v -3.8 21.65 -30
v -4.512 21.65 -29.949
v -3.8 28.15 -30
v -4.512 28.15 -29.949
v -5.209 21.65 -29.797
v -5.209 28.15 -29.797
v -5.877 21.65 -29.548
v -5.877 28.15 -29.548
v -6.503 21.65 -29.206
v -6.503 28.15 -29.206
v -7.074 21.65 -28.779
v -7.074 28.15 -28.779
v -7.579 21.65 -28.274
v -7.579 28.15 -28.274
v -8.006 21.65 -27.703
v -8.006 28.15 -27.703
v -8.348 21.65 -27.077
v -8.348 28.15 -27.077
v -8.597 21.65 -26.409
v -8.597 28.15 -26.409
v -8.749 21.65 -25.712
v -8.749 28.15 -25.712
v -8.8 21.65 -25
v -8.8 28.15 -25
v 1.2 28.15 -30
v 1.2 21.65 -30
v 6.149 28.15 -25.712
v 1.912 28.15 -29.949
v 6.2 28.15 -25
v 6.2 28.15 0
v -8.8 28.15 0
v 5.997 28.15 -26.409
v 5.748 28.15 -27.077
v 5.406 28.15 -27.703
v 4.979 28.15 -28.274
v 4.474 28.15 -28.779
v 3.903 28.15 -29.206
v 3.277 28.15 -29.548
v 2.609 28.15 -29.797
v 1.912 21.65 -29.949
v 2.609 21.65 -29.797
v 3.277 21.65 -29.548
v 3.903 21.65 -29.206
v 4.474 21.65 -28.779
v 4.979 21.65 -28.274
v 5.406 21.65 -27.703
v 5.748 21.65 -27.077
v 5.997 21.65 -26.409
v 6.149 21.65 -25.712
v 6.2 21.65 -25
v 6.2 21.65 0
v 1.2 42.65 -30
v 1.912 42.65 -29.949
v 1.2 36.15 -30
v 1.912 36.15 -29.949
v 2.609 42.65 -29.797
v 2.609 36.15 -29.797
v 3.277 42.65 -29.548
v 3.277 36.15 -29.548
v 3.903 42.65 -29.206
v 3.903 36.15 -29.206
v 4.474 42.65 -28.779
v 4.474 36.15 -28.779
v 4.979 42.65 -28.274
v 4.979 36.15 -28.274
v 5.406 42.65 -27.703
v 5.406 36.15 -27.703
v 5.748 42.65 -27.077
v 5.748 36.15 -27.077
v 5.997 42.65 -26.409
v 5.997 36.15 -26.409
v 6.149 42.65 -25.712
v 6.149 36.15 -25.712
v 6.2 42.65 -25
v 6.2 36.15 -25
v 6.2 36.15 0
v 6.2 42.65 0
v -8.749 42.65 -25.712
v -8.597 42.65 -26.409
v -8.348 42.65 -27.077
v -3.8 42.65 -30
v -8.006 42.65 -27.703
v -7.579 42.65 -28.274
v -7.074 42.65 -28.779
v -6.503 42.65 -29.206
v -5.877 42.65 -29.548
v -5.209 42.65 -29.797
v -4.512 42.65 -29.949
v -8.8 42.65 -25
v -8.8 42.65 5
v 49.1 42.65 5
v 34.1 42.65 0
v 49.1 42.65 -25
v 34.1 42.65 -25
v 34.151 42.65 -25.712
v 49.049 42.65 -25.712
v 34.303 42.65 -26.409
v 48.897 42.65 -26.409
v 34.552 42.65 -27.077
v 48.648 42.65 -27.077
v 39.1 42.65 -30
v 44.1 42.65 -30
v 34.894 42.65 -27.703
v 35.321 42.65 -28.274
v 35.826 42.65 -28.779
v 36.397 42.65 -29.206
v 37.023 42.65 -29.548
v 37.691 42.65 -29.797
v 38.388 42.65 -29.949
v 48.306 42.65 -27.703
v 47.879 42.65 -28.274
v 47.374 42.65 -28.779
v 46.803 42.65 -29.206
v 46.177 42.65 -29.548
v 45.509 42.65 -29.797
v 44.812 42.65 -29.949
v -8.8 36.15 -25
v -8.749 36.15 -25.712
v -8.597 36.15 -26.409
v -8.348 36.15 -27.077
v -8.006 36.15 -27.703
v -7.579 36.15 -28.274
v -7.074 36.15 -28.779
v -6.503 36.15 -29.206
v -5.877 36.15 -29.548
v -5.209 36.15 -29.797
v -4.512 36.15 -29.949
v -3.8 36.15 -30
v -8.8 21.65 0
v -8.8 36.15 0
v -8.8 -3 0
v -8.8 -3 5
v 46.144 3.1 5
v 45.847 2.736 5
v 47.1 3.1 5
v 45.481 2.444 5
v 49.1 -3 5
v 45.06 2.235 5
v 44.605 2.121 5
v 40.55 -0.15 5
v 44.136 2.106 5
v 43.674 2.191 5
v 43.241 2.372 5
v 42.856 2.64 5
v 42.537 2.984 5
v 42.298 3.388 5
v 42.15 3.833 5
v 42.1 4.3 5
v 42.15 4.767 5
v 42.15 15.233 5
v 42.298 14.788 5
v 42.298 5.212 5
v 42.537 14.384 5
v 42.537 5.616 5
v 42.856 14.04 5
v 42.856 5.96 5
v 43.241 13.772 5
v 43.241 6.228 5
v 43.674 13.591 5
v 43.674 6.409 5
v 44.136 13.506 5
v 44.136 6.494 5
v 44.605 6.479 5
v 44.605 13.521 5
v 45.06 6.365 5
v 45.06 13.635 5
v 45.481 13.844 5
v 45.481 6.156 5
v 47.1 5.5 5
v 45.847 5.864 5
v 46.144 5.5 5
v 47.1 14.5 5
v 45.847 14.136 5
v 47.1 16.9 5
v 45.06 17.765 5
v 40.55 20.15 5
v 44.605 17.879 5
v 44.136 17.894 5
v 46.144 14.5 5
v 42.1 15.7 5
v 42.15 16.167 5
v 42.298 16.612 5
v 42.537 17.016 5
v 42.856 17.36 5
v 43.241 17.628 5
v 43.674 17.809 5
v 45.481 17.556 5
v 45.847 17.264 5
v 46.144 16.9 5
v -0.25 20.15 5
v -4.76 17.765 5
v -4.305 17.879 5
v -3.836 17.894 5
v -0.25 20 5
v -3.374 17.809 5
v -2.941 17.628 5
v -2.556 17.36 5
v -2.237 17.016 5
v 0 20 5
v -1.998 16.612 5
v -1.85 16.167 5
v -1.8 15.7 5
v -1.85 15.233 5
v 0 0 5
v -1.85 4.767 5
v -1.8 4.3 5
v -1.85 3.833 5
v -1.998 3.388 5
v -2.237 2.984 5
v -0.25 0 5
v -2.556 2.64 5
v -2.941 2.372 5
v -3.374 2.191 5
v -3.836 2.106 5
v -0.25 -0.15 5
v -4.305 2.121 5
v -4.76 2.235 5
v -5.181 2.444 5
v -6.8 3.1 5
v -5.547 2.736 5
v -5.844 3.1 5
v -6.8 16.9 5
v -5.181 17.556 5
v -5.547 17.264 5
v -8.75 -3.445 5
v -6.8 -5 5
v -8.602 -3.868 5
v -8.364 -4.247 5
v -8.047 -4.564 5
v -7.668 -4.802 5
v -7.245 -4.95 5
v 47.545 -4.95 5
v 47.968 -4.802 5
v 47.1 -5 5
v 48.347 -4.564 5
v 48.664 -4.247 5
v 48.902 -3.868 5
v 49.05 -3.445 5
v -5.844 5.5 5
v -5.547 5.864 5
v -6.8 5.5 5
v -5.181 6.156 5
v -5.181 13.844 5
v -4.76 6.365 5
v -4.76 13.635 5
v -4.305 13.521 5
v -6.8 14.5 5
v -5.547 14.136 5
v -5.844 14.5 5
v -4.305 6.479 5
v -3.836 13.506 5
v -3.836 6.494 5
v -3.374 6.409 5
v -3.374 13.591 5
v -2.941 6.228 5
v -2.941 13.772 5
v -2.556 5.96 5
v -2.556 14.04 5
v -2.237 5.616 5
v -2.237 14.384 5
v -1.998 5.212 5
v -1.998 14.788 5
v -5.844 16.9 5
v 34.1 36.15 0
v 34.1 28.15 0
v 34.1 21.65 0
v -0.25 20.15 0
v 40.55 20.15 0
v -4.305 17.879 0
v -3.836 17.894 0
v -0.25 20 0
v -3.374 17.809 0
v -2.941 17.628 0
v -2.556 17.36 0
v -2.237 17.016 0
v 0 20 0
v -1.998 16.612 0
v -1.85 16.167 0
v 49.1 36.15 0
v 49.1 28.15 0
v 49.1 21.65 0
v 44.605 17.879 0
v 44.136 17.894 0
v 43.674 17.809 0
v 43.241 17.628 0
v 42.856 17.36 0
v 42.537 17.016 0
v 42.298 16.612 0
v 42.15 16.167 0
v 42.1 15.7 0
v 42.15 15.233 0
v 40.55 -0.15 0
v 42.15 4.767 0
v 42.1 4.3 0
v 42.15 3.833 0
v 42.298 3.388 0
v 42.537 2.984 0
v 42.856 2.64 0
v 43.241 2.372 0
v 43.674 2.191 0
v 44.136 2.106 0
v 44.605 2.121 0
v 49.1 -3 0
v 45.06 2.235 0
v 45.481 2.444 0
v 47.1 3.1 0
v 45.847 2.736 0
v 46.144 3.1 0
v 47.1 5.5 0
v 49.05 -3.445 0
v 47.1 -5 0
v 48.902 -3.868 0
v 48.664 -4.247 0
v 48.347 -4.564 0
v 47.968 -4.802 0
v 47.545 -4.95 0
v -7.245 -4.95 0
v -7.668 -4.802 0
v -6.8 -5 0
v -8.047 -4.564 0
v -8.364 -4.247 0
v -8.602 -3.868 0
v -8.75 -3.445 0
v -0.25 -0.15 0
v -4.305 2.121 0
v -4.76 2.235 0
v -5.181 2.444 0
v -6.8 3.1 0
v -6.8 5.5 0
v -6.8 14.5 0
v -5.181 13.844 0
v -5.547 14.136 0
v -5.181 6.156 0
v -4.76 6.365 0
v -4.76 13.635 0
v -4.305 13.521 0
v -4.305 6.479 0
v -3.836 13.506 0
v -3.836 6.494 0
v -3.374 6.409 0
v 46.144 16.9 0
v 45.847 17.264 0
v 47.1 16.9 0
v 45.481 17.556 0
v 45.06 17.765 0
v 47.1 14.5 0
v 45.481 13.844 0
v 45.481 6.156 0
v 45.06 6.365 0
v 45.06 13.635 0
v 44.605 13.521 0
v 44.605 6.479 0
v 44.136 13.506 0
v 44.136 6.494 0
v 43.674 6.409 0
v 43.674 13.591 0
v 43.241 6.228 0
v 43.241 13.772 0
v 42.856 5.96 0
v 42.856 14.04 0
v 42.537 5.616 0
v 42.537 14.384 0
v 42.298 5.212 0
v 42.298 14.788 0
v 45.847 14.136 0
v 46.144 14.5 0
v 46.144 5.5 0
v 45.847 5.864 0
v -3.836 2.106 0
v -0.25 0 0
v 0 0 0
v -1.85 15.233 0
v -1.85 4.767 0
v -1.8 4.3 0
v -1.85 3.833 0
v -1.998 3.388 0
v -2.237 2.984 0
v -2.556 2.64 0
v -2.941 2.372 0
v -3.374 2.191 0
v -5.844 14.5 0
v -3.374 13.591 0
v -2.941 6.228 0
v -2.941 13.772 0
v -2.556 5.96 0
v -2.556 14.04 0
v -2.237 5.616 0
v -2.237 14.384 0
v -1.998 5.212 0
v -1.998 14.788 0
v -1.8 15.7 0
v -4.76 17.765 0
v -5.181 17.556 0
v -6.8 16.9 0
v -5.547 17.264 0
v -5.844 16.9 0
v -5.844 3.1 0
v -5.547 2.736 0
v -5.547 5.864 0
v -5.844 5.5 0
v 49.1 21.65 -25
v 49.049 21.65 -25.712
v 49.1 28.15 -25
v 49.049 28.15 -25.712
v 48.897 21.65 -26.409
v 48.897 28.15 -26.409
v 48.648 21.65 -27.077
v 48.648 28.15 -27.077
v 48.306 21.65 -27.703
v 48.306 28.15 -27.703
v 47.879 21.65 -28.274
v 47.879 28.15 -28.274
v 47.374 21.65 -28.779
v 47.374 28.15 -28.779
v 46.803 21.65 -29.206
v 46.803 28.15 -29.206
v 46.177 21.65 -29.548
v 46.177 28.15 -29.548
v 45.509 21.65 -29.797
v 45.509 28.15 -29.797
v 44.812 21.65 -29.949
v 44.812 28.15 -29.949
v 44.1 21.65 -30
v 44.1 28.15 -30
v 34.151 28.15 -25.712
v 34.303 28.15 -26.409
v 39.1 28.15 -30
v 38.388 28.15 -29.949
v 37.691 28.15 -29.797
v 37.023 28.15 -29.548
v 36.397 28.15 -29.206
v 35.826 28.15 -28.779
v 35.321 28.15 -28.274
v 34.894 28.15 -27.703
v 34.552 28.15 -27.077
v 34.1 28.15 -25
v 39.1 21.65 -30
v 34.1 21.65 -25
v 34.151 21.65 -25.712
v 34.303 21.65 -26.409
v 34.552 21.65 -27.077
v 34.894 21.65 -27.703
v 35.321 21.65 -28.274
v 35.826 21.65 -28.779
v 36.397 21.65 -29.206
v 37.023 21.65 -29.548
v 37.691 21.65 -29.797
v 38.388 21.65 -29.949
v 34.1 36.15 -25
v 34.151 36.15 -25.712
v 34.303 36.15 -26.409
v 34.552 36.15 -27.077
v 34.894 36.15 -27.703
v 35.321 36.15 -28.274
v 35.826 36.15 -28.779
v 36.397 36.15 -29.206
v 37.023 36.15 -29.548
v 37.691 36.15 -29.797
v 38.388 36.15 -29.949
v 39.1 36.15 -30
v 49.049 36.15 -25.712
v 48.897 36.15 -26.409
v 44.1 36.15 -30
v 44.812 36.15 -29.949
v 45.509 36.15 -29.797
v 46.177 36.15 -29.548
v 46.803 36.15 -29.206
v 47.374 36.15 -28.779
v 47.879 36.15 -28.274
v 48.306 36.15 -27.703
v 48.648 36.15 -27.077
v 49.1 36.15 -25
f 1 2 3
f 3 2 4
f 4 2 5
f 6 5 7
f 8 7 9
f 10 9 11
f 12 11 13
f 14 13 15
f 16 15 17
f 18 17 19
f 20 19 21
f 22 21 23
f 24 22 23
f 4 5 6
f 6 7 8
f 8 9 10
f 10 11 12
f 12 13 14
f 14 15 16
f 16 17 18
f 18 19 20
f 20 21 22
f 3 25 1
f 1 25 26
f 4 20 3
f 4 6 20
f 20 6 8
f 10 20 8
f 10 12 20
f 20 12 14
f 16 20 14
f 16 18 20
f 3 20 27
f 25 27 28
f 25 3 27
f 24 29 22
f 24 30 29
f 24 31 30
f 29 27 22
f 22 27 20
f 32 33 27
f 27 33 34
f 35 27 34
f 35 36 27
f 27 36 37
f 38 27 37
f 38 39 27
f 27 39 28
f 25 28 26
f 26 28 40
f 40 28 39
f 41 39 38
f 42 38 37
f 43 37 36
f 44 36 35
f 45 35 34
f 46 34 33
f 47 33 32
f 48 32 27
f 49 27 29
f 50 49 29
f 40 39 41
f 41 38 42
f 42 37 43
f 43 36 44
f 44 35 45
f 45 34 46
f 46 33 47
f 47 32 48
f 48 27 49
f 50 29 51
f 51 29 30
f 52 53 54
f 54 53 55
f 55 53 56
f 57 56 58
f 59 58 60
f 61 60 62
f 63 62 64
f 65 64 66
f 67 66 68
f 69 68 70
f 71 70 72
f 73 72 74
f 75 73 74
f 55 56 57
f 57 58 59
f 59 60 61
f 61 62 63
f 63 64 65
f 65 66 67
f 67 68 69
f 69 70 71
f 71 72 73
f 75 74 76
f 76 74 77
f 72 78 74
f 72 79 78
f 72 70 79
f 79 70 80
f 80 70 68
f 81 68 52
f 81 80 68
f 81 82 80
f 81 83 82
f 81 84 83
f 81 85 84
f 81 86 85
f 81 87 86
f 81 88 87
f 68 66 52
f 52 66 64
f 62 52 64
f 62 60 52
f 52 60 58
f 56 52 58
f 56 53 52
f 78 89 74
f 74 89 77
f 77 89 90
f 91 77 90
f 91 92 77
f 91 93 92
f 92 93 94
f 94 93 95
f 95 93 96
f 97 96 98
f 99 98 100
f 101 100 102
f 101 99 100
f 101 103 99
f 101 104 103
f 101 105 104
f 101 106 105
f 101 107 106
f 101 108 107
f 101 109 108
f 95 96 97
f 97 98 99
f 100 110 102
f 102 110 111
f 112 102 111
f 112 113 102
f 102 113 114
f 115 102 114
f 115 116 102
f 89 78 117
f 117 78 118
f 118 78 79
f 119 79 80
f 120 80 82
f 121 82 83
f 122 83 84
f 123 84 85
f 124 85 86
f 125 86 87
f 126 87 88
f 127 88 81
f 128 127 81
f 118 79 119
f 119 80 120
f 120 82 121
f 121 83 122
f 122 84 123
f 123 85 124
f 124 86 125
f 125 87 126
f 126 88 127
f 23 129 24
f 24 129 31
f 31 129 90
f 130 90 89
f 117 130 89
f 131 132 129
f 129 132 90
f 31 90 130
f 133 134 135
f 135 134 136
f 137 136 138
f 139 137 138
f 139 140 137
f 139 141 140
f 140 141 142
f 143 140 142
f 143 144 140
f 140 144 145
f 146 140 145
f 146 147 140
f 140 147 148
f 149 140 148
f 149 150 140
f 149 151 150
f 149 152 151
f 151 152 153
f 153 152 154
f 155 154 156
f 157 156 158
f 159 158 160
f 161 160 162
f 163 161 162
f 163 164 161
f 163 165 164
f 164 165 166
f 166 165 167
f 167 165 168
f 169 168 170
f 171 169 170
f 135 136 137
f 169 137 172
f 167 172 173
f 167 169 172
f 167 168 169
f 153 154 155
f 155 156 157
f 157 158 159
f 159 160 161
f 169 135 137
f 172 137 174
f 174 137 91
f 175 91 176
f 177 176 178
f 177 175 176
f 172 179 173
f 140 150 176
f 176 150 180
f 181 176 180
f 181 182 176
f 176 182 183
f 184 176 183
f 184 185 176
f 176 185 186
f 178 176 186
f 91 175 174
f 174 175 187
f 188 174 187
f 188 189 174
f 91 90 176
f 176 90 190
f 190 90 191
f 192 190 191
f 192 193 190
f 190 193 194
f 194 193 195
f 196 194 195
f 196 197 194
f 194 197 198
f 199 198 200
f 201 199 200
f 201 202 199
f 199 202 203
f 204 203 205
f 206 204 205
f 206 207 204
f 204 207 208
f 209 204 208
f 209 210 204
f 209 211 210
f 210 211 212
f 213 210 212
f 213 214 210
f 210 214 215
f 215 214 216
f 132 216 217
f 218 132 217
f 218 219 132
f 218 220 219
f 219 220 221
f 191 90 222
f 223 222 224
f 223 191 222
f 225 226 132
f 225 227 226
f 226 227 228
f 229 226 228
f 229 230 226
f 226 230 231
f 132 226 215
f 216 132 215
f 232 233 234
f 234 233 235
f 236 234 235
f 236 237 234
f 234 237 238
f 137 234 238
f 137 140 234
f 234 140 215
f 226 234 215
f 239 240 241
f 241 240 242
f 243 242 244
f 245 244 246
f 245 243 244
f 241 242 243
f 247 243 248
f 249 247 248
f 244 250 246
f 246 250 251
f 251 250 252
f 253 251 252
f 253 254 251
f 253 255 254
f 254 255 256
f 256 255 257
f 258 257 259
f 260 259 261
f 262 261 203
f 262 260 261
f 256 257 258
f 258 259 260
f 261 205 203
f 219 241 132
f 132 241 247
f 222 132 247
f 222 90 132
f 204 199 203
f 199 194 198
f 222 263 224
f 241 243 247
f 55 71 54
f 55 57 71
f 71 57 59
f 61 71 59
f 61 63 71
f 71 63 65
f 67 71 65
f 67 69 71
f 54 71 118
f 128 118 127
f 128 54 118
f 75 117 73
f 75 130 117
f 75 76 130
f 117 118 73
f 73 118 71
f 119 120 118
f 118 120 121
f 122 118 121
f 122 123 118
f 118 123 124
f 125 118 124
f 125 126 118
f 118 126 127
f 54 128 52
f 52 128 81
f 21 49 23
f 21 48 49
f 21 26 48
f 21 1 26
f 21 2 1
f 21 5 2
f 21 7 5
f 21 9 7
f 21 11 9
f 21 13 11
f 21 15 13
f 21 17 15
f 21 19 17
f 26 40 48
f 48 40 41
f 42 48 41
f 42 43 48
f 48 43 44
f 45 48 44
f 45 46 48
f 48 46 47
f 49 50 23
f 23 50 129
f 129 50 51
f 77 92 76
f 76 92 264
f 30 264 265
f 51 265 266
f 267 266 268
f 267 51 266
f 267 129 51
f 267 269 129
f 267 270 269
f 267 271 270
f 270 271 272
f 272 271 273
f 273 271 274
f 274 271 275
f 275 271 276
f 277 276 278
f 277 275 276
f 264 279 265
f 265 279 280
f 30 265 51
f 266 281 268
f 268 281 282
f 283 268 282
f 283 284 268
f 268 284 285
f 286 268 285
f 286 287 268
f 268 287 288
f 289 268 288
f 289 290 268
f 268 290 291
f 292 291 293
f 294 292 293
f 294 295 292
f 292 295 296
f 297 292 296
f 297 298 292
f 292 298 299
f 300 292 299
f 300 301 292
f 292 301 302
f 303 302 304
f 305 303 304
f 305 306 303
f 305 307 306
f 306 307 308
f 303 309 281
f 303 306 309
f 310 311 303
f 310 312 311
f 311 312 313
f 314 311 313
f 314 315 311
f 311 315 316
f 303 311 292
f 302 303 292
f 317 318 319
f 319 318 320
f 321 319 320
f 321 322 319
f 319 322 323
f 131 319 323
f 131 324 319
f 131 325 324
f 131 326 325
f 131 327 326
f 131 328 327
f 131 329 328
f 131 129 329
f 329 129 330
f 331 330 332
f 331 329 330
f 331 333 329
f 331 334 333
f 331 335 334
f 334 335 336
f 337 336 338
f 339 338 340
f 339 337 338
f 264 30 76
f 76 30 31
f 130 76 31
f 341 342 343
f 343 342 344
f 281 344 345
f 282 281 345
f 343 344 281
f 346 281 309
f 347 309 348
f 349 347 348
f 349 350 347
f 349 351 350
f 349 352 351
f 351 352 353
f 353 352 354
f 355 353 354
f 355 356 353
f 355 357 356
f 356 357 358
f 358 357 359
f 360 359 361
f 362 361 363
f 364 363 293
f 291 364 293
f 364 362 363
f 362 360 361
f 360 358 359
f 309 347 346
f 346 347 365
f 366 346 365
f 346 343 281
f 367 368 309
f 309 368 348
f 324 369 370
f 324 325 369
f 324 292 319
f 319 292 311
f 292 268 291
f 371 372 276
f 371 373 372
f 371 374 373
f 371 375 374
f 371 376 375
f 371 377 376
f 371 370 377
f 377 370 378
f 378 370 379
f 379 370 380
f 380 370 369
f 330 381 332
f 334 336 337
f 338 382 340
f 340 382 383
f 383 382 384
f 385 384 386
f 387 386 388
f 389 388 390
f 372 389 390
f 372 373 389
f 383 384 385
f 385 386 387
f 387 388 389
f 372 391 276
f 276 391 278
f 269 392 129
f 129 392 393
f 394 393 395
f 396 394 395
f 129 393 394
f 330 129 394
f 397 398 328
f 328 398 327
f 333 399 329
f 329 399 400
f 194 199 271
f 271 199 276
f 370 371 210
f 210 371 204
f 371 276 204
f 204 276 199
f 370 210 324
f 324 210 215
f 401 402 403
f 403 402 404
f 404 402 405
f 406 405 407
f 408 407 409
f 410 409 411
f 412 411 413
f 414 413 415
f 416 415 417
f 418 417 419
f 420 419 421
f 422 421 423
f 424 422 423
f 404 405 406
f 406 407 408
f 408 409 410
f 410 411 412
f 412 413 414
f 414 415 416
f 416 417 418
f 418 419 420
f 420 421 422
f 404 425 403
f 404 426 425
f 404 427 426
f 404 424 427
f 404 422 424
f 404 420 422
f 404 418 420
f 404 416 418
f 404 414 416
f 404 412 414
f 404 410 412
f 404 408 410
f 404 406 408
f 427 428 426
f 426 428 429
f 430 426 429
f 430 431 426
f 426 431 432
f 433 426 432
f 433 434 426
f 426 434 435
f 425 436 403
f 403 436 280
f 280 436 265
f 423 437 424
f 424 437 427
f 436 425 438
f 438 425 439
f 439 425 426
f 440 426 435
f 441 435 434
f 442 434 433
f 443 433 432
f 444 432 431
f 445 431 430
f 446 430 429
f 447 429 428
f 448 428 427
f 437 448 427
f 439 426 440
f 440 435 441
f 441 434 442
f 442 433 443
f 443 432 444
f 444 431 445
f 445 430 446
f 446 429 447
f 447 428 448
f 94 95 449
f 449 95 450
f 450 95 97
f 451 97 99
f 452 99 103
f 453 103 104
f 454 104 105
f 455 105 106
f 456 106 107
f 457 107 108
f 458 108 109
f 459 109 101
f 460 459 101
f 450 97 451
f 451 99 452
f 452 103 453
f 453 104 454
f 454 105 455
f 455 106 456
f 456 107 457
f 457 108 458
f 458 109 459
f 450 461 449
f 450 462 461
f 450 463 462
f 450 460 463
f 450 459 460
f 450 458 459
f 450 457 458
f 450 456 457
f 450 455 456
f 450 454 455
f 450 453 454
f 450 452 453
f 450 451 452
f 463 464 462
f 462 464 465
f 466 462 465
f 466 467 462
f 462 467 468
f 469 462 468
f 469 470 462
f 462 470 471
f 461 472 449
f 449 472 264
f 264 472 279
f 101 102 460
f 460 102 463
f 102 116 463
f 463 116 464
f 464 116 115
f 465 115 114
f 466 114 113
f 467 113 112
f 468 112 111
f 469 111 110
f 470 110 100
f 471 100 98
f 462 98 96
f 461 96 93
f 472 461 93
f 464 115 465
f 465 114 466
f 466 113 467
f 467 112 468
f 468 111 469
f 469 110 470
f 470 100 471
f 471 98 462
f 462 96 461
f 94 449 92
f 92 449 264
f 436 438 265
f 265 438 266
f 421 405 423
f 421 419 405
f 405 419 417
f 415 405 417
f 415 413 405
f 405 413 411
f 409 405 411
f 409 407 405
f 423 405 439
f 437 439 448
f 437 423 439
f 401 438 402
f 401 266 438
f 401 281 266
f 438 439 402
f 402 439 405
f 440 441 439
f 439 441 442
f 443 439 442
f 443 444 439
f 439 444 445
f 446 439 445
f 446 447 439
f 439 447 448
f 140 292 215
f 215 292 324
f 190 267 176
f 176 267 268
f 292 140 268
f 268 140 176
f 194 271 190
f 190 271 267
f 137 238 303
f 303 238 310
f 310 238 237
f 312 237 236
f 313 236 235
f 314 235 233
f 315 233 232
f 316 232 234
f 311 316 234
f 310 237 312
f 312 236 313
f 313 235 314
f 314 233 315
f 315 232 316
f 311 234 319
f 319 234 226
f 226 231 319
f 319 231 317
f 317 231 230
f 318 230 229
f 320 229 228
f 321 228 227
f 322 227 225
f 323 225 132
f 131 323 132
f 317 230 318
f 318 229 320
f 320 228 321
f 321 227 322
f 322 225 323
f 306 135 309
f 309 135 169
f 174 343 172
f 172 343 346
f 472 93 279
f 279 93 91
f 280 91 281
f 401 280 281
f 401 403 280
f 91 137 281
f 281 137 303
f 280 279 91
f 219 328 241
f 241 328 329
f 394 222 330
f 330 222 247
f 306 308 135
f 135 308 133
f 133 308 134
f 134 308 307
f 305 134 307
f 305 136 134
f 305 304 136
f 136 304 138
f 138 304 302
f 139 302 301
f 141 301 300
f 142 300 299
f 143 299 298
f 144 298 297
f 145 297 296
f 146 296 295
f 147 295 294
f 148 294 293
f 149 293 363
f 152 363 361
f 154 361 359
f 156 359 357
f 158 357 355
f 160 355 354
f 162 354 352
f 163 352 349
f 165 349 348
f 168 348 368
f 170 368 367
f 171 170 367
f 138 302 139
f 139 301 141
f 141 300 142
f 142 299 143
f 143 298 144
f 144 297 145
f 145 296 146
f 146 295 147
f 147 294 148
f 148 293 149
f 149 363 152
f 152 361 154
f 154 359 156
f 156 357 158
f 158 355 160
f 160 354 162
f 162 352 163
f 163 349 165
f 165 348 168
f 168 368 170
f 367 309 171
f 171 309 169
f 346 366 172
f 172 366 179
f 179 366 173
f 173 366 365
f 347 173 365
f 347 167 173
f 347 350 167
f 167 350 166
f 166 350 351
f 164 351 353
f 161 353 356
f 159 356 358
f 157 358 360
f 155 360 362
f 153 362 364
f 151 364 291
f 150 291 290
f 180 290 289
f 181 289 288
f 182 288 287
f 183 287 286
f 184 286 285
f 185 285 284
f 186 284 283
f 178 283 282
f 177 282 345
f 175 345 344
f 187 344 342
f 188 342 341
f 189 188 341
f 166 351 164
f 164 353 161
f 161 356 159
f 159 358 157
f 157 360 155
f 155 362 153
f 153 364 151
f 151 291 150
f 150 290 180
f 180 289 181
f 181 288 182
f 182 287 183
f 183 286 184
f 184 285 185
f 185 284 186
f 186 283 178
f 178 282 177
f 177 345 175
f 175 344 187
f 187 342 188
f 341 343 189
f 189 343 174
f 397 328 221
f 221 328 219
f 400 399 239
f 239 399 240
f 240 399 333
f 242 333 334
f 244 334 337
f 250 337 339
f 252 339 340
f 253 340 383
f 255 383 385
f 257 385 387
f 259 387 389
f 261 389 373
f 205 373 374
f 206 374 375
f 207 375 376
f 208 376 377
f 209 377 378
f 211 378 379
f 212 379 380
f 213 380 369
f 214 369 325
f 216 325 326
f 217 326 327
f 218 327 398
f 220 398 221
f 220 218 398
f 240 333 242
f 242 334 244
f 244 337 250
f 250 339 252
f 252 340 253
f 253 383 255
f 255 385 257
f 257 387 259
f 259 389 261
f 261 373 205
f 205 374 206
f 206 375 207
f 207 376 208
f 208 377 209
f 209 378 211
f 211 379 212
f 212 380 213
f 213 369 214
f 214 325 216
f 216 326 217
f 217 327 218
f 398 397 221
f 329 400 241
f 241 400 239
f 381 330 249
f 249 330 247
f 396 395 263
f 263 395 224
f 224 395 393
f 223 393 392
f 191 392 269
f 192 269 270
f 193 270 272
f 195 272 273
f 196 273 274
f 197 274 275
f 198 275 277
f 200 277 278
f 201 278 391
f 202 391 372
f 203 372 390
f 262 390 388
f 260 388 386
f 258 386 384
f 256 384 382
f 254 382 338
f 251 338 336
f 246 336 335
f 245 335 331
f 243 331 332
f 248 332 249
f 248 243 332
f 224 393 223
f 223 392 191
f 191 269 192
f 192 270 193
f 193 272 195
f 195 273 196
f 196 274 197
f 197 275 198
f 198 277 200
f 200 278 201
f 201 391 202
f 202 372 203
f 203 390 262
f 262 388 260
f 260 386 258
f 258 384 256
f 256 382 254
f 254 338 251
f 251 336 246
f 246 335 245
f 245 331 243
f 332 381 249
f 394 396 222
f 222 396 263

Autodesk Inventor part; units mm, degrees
ref_plane "YZ Plane" through (0, 0, 0) normal (1, 0, 0) x (0, 1, 0)
ref_plane "XZ Plane" through (0, 0, 0) normal (0, 1, 0) x (-1, 0, 0)
sketch "Sketch1" plane through (0, 0, 0) normal (0, 0, 1) x (1, 0, 0)
  line L0 (0, 0) -> (-6.8, 0)
  line L1 (-6.8, 0) -> (-6.8, 20)
  line L2 (-6.8, 20) -> (0, 20)
  line L3 (0, 20) -> (0, 0)
  line L4 (-5.8439, 5.5) -> (-6.8, 5.5) projected
  line L5 (-6.8, 14.5) -> (-6.8, 5.5) projected
  line L6 (-6.8, 14.5) -> (-5.8439, 14.5) projected
  arc A0 (-5.8439, 14.5) -> (-5.8439, 16.9) centre (-4, 15.7) ccw projected
  line L7 (-5.8439, 16.9) -> (-6.8, 16.9) projected
  line L8 (-6.8, 20) -> (-6.8, 16.9) projected
  line L9 (0, 20) -> (-6.8, 20) projected
  line L10 (0, 0) -> (0, 20) projected
  line L11 (0, 0) -> (-6.8, 0) projected
  line L12 (-6.8, 3.1) -> (-6.8, 0) projected
  line L13 (-6.8, 3.1) -> (-5.8439, 3.1) projected
  arc A1 (-5.8439, 3.1) -> (-5.8439, 5.5) centre (-4, 4.3) ccw projected
  dimension "d0" = 6.8
  dimension "d1" = 20
extrude "Extrusion1" add sketch "Sketch1" along normal blind 5 contours L0 L1 L13 A1 L4 L6 A0 L7 L2 L3
ref_plane "Work Plane1" through (20.15, 10, -1.65) normal (-1, 0, 0) x (0, 1, 0)
mirror "Mirror1" about plane through (20.15, 10, -1.65) normal (-1, 0, 0) of "Extrusion1"
sketch "Sketch2" plane through (-6.8, 0, 0) normal (0, -1, 0) x (1, 0, 0)
  line L0 (0, 0) -> (53.9, 0)
  line L1 (53.9, 0) -> (53.9, 5)
  line L2 (53.9, 5) -> (0, 5)
  line L3 (0, 5) -> (0, 0)
  dimension "d4" = 53.9
extrude "Extrusion2" add sketch "Sketch2" along normal blind 5
sketch "Sketch3" plane through (-6.8, 3.1, 0) normal (-1, 0, 0) x (0, 0, 1)
  line L0 (0, -8.1) -> (5, -8.1)
  line L1 (5, -8.1) -> (5, 16.9)
  line L2 (5, 16.9) -> (0, 16.9)
  line L3 (0, 16.9) -> (0, -8.1)
  point P0 (0, -3.1)
  dimension "d7" = 25
extrude "Extrusion3" add sketch "Sketch3" along normal blind 2
mirror "Mirror2" about plane through (20.15, 10, -1.65) normal (-1, 0, 0) of "Extrusion3"
fillet "Fillet1" radius 2 1 edges at (-8.8, -5, 2.5)
fillet "Fillet2" radius 2 1 edges at (49.1, -5, 2.5)
sketch "Sketch4" plane through (0, 20, 5) normal (1, 0, 0) x (0, 0, -1)
  line L0 (5, -20) -> (5, 0) projected
  line L1 (5, 0) -> (0, 0) projected
  line L2 (0, -20) -> (0, 0) projected
  line L3 (5, -20) -> (0, -20) projected
extrude "Extrusion4" cut sketch "Sketch4" against normal blind 0.25
mirror "Mirror3" about plane through (20.15, 10, -1.65) normal (-1, 0, 0) of "Extrusion4"
sketch "Sketch5" plane through (-8.8, 20, 5) normal (0, 1, 0) x (1, 0, 0)
  line L0 (0, 0) -> (57.9, 0)
  line L1 (57.9, 0) -> (57.9, 5)
  line L2 (57.9, 5) -> (0, 5)
  line L3 (0, 5) -> (0, 0)
  point P0 (8.8, 5)
  dimension "d14" = 57.9
extrude "Extrusion5" add sketch "Sketch5" along normal blind 5
sketch "Sketch6" plane through (-8.8, 20, 5) normal (0, -1, 0) x (1, 0, 0)
  line L0 (8.55, 0) -> (8.55, -5) projected
  line L1 (49.35, -5) -> (8.55, -5) projected
  line L2 (49.35, -5) -> (49.35, 0) projected
  line L3 (8.55, 0) -> (49.35, 0) projected
  point P0 (8.8, -5)
extrude "Extrusion6" cut sketch "Sketch6" against normal blind 0.15
sketch "Sketch7" plane through (-6.8, 0, 0) normal (0, 1, 0) x (1, 0, 0)
  line L0 (47.35, -5) -> (6.55, -5) projected
  line L1 (47.35, 0) -> (47.35, -5) projected
  line L2 (6.55, 0) -> (47.35, 0) projected
  line L3 (6.55, 0) -> (6.55, -5) projected
  point P0 (6.8, 0)
extrude "Extrusion7" cut sketch "Sketch7" against normal blind 0.15
sketch "Sketch16" plane through (-8.8, 25, 5) normal (0, 1, 0) x (1, 0, 0)
  line L0 (0, 0) -> (57.9, 0) projected
  line L1 (0, 5) -> (15, 5)
  line L2 (15, 5) -> (15, 0)
  line L3 (15, 0) -> (0, 0)
  line L4 (0, 0) -> (0, 5)
  line L5 (57.9, 5) -> (42.9, 5)
  line L6 (42.9, 5) -> (42.9, 0)
  line L7 (42.9, 0) -> (57.9, 0)
  line L8 (57.9, 0) -> (57.9, 5)
  point P0 (8.8, 5)
  dimension "d48" = 15
  dimension "d49" = 15
extrude "Extrusion13" add sketch "Sketch16" along normal blind 18
sketch "Sketch17" plane through (0, 0, 0) normal (0, 0, -1) x (-1, 0, 0)
  line L0 (8.8, -3) -> (8.8, 43) projected
  line L1 (-34.1, 25) -> (-34.1, 43) projected
  line L2 (-49.1, 43) -> (-49.1, -3) projected
  line L3 (-49.1, 43) -> (-34.1, 43)
  line L4 (-34.1, 38) -> (-34.1, 36.5)
  line L5 (-49.1, 36.5) -> (-49.1, 43)
  line L6 (-6.2, 43) -> (8.8, 43)
  line L7 (8.8, 43) -> (8.8, 38)
  line L8 (8.8, 38) -> (-6.2, 38)
  line L9 (-6.2, 38) -> (-6.2, 43)
  line L10 (-49.1, 28.15) -> (-34.1, 28.15)
  line L11 (-34.1, 28.15) -> (-34.1, 21.65)
  line L12 (-34.1, 21.65) -> (-49.1, 21.65)
  line L13 (-49.1, 21.65) -> (-49.1, 28.15)
  line L14 (-6.2, 25) -> (8.8, 25)
  line L15 (8.8, 25) -> (8.8, 30)
  line L16 (8.8, 30) -> (-6.2, 30)
  line L17 (-6.2, 30) -> (-6.2, 25)
  line L18 (-40.55, 20.15) -> (0.25, 20.15) projected
  line L19 (-49.1, 36.15) -> (-34.1, 36.15)
  line L20 (-34.1, 36.15) -> (-34.1, 42.65)
  line L21 (-34.1, 42.65) -> (-49.1, 42.65)
  line L22 (-49.1, 42.65) -> (-49.1, 36.15)
  point P0 (0, 0)
  dimension "d54" = 6.5
  dimension "d75" = 1.5
  dimension "d76" = 8
  dimension "d77" = 6.5
sketch "Sketch19" plane through (-8.8, 25, 5) normal (0, 1, 0) x (1, 0, 0)
  line L0 (15, 5) -> (15, 0) projected
  line L1 (15, 0) -> (42.9, 0) projected
  line L2 (42.9, 0) -> (42.9, 5) projected
  line L3 (42.9, 5) -> (15, 5) projected
  point P0 (8.8, 5)
extrude "Extrusion17" add sketch "Sketch19" along normal up to surface (18 mm away)
extrude "Extrusion18" add sketch "Sketch17" along normal blind 30 contours L11 L12 L2 L10 L1 | L19 L2 L21 L1
fillet "Fillet16" radius 5 4 edges at (49.1, 39.4, -30) (34.1, 39.4, -30) (34.1, 24.9, -30) (49.1, 24.9, -30)
mirror "Mirror6" about plane through (20.15, 10, -1.65) normal (-1, 0, 0) of "Extrusion18", "Mirror1"
sketch "Sketch20" plane through (-8.8, 43, 5) normal (0, 1, 0) x (1, 0, 0)
  line L0 (57.9, 5) -> (0, 5) projected
  line L1 (0, 5) -> (0, 0) projected
  line L2 (0, 0) -> (57.9, 0) projected
  line L3 (57.9, 0) -> (57.9, 5) projected
  point P0 (8.8, 5)
extrude "Extrusion19" cut sketch "Sketch20" against normal up to surface (0.35 mm away)
mirror "Mirror7" about plane through (20.15, 10, -1.65) normal (-1, 0, 0) of "Fillet16"
ref_plane "Work Plane2" through (20.15, 10, -1.65) normal (-1, 0, 0) x (0, 1, 0)
ref_plane "Work Plane3" through (20.15, 10, -1.65) normal (-1, 0, 0) x (0, 1, 0)
properties part number "CameraCraddle"
